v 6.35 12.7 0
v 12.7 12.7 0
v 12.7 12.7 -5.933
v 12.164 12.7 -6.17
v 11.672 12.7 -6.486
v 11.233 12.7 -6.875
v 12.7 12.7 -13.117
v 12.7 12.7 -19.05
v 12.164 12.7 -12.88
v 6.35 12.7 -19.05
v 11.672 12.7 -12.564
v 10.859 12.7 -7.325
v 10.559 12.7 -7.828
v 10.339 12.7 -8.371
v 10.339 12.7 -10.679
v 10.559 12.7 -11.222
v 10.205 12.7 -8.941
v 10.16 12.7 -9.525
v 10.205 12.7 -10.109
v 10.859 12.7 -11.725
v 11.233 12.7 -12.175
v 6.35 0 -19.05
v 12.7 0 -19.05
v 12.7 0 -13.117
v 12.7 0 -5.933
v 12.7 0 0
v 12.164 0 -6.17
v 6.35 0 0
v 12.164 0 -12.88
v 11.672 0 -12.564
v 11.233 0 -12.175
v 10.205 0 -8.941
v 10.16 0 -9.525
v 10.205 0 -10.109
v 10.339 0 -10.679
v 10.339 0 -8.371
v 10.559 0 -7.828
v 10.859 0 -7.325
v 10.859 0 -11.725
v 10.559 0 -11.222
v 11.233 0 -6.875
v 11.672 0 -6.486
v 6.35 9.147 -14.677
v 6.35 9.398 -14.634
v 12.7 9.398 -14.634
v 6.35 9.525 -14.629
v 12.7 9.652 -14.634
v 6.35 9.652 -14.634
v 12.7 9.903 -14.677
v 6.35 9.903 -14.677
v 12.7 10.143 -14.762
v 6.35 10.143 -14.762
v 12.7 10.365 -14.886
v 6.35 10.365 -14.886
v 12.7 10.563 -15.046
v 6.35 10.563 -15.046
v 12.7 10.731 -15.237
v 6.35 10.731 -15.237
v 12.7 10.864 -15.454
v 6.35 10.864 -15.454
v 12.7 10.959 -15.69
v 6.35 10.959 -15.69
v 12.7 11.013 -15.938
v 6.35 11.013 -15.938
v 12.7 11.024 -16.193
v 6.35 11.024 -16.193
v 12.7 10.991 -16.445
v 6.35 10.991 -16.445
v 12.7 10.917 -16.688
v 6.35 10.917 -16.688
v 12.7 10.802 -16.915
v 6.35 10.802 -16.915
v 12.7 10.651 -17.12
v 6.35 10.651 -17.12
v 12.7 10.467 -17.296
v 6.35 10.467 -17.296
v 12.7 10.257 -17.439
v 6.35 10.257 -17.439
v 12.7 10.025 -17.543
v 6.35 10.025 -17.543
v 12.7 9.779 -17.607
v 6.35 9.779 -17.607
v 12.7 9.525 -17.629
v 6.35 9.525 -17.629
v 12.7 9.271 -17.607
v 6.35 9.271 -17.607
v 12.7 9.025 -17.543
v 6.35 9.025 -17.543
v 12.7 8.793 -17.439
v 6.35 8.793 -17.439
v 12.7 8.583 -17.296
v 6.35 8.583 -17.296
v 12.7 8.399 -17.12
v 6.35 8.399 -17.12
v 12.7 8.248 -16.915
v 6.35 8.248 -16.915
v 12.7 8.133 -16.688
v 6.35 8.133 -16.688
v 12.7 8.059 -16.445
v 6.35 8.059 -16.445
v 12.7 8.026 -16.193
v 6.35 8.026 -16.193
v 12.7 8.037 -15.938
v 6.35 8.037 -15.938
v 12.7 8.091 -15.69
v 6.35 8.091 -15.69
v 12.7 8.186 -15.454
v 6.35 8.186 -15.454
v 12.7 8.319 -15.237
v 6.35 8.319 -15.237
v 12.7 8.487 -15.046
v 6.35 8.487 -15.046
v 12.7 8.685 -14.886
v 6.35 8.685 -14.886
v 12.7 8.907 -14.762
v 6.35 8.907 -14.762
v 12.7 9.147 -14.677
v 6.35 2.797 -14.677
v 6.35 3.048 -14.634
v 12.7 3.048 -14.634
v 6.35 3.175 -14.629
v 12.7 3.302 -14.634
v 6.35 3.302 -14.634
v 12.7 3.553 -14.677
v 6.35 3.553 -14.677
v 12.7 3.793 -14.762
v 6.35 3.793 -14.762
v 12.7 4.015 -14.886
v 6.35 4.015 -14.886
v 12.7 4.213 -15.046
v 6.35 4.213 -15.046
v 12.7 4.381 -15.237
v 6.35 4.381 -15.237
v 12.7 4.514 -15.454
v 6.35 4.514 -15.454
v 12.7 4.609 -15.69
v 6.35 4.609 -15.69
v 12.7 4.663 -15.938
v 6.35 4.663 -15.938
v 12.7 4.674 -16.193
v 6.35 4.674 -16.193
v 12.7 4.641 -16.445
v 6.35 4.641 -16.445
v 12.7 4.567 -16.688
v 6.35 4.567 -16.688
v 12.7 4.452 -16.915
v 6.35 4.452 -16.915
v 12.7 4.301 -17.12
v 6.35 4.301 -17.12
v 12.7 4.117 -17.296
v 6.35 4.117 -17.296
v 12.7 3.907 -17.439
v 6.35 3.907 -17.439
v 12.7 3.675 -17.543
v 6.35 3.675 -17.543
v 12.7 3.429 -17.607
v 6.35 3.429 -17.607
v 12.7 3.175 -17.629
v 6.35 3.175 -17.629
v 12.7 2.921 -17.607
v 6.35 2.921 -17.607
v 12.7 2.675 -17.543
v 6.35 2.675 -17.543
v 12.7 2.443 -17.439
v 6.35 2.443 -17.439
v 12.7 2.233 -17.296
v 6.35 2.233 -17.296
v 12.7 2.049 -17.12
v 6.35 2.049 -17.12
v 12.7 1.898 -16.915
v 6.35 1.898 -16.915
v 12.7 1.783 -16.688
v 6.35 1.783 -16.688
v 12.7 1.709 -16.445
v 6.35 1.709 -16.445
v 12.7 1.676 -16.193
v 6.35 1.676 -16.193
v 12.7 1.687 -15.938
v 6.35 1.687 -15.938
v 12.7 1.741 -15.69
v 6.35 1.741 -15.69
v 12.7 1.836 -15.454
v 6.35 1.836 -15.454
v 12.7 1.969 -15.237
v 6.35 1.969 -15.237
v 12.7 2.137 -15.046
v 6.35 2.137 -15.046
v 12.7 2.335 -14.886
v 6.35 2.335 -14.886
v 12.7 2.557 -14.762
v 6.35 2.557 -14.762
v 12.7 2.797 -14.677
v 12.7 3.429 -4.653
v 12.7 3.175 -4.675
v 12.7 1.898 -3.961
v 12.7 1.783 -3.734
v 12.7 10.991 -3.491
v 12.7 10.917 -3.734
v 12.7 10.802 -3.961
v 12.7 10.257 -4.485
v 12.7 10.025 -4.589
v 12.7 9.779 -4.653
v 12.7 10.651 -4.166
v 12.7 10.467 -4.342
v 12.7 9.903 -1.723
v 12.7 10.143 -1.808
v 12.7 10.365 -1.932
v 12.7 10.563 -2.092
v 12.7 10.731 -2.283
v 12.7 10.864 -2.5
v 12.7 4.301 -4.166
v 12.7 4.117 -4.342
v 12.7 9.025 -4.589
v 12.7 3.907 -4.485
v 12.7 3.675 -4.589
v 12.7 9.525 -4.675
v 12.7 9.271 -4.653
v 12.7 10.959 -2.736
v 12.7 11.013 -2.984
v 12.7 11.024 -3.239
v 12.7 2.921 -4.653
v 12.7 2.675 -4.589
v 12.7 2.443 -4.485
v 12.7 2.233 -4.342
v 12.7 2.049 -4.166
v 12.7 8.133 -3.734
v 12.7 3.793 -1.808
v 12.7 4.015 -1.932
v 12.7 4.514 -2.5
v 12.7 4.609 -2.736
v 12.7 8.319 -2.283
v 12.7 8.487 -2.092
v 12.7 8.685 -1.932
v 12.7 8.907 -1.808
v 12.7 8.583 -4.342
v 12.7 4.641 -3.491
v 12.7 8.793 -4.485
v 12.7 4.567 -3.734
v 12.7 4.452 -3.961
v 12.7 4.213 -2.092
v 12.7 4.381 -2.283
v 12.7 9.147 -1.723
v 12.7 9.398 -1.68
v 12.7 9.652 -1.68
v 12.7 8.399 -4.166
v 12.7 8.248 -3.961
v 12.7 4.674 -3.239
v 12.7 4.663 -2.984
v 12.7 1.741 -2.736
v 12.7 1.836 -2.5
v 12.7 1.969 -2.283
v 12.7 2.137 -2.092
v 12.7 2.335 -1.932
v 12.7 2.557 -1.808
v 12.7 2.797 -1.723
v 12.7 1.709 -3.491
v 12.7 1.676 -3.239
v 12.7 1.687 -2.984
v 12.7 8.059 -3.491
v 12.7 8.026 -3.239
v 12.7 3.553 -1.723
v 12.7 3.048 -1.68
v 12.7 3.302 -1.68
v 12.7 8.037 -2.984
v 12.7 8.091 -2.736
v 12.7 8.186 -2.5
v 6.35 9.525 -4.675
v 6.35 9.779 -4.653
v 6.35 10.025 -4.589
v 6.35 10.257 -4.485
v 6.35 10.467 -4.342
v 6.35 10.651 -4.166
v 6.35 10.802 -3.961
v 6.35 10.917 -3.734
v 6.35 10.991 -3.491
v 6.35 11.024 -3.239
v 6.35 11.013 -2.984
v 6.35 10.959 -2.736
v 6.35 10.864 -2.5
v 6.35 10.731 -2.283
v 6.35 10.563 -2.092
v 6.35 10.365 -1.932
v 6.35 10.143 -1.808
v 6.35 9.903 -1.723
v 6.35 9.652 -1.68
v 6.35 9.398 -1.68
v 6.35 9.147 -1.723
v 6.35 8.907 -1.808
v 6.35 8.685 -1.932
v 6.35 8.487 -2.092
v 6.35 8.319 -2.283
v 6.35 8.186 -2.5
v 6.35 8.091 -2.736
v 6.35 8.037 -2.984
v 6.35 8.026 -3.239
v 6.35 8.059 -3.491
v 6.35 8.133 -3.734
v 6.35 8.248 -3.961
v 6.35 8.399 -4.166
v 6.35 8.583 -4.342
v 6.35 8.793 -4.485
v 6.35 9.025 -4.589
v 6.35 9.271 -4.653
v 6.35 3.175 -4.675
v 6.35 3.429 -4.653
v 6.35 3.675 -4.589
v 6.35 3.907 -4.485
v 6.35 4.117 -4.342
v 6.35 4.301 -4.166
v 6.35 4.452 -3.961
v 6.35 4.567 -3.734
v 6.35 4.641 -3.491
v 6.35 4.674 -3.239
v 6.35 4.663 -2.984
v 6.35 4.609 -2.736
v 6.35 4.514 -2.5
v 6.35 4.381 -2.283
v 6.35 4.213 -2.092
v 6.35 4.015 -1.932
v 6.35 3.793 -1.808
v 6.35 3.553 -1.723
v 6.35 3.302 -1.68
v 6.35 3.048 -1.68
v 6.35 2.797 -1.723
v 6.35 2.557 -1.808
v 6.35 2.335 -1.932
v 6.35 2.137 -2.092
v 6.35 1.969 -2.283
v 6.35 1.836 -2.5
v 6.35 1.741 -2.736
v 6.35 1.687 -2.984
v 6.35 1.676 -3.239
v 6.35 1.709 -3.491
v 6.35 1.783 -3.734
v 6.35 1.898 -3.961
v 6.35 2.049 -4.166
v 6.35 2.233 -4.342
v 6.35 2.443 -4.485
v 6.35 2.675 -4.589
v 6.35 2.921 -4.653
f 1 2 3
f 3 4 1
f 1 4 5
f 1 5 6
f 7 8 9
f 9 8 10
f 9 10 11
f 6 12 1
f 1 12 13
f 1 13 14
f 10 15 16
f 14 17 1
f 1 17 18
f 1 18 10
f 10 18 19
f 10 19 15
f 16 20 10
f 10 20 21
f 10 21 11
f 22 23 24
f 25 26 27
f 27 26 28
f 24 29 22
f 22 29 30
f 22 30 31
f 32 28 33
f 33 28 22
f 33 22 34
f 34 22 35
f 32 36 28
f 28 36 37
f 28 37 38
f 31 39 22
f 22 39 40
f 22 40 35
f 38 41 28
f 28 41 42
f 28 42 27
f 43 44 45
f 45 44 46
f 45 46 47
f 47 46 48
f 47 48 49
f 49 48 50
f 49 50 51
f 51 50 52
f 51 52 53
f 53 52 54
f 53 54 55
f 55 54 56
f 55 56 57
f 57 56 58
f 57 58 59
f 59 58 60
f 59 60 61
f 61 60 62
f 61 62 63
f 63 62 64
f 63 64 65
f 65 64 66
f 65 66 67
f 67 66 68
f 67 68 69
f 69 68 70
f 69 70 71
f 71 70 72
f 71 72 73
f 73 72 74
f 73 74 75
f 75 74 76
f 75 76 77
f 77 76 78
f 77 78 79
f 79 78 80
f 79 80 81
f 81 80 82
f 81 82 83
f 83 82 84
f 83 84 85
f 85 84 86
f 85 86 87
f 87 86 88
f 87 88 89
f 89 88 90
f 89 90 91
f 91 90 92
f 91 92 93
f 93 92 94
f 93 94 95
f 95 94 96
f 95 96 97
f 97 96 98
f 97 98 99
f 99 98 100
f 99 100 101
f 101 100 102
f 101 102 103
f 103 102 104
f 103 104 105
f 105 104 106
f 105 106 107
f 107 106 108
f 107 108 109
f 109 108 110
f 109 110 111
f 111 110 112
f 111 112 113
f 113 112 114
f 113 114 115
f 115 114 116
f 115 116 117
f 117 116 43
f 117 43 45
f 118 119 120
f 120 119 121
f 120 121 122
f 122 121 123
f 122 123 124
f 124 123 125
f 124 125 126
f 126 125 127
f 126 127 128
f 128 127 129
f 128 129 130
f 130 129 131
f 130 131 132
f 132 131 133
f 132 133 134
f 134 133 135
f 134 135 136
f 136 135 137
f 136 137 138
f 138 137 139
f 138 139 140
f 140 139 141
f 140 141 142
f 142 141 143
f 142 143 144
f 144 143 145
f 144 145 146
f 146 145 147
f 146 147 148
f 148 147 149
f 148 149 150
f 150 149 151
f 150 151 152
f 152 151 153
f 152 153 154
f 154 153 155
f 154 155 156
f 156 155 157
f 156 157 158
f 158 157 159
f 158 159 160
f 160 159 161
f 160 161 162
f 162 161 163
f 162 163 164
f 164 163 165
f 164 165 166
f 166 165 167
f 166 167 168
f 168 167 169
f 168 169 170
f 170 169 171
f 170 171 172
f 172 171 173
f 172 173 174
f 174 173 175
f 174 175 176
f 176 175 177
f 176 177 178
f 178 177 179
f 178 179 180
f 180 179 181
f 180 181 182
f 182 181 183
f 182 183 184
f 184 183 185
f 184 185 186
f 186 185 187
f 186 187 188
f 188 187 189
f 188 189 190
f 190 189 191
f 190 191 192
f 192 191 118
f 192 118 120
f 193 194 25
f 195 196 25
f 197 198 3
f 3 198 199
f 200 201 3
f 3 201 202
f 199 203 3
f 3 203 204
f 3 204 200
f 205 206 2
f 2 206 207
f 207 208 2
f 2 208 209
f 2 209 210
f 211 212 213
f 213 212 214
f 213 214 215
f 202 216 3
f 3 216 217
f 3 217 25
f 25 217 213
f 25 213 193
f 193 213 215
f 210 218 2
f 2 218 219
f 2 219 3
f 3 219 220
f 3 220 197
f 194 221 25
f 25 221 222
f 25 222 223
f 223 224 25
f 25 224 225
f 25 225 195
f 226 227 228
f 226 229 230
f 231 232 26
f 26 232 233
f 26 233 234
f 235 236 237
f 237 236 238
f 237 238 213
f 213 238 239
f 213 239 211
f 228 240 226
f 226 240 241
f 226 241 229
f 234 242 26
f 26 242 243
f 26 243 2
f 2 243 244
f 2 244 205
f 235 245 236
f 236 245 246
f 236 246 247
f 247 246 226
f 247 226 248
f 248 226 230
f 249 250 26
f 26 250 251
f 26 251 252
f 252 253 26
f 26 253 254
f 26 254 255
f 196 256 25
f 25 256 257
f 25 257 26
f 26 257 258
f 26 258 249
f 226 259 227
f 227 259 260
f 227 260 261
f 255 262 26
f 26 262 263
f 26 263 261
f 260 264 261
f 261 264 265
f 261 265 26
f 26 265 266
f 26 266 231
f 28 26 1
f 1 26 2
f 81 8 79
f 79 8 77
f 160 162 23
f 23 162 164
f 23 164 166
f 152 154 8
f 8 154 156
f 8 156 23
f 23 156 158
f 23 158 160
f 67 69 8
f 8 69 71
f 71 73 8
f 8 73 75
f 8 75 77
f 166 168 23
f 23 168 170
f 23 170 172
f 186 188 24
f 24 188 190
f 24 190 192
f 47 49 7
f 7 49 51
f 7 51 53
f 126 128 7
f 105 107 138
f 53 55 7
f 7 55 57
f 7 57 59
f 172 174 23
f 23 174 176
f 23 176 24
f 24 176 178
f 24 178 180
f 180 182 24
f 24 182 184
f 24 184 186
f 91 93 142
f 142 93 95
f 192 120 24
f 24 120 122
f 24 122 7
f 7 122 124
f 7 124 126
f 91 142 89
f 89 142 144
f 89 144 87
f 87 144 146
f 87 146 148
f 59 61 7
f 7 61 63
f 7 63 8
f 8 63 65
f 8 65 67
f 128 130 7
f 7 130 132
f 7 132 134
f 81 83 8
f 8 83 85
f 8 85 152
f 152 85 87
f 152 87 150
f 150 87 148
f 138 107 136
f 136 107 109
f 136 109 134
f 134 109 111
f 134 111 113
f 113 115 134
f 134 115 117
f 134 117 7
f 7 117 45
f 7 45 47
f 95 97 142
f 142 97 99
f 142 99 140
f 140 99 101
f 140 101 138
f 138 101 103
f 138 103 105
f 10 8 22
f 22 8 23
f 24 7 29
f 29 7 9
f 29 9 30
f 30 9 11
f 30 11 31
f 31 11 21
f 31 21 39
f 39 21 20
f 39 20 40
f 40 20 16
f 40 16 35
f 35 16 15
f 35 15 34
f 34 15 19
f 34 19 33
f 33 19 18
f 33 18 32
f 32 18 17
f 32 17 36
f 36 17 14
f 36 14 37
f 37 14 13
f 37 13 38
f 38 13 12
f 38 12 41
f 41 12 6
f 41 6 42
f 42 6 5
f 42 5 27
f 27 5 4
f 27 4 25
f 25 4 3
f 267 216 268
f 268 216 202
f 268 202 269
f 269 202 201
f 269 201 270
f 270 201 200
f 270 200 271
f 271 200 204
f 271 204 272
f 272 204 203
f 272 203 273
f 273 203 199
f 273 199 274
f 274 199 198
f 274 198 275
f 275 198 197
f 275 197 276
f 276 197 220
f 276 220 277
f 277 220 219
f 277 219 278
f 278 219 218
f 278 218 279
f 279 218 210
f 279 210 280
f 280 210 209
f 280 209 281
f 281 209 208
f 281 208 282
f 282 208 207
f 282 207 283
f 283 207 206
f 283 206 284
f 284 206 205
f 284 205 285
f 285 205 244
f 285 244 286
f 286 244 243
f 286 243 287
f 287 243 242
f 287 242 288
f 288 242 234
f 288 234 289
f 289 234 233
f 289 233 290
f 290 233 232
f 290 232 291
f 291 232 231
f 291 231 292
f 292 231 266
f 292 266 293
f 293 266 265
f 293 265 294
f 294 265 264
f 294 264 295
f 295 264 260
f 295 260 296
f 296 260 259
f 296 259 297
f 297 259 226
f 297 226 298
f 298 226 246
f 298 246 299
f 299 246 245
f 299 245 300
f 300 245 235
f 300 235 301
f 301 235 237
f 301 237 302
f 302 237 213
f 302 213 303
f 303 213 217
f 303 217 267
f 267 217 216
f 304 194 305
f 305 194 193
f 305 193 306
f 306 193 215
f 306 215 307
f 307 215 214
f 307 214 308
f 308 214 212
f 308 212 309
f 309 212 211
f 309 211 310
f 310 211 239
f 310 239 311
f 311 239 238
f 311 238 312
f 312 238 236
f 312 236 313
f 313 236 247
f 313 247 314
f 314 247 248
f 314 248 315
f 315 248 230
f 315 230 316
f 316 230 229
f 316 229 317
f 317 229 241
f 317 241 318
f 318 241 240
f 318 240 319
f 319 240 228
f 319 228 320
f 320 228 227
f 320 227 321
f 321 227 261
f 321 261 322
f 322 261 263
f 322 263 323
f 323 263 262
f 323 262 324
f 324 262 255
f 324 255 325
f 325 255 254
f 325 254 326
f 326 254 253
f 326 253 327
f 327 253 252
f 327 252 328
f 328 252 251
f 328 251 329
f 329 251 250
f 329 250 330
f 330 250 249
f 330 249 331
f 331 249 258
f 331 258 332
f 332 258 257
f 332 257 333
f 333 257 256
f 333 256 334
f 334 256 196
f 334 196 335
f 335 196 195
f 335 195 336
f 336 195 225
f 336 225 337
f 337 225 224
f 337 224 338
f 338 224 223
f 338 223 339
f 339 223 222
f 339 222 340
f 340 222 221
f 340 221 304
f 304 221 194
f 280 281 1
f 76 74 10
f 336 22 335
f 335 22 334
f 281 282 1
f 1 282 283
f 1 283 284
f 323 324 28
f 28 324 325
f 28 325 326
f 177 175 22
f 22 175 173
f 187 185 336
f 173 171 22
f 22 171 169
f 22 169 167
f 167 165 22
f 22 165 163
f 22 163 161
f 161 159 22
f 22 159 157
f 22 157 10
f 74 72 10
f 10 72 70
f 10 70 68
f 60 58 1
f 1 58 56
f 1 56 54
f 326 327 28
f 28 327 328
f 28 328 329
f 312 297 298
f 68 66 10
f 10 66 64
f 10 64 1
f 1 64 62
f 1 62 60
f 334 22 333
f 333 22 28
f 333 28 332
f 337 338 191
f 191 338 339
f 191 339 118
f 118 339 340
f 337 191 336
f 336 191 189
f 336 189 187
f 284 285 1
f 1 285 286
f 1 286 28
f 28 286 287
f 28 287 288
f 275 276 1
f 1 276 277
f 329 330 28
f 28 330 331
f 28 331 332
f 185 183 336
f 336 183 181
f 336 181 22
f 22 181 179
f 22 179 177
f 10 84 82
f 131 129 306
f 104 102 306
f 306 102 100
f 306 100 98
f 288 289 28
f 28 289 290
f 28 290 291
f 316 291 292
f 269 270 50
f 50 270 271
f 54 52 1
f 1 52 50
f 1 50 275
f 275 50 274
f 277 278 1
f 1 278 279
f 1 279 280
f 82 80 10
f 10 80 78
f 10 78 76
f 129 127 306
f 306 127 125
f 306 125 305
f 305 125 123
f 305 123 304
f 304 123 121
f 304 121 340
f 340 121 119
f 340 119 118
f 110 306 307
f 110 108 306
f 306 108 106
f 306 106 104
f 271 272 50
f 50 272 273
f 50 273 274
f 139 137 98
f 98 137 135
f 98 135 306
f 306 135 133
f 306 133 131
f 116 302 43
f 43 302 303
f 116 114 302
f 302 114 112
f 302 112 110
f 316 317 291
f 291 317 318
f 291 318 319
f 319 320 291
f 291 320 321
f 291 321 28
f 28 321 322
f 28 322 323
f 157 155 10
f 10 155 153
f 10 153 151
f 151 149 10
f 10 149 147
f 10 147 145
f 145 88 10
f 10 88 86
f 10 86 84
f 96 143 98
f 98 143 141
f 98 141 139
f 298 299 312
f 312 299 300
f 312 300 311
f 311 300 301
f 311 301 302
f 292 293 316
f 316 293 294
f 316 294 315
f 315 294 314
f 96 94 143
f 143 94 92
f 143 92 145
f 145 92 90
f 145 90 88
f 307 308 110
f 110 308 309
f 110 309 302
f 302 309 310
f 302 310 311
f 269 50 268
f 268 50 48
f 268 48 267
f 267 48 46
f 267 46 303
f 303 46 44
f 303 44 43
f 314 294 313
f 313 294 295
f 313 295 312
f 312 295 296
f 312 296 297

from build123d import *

# Parameters (mm, degrees)
SKETCH1_W           = 12.7
SKETCH1_H           = 19.05
BOSS_EXTRUDE1_DEPTH = 12.7
CUT_EXTRUDE2_DEPTH  = 12.7
SKETCH5_R           = 1.5
CUT_EXTRUDE3_DEPTH  = 12.7
CUT_EXTRUDE4_DEPTH  = 12.7
SKETCH7_W           = 12.213119959
SKETCH7_H           = 9.608468088
CUT_EXTRUDE5_DEPTH  = 12.7


with BuildPart() as part:
    # Sketch1 → Boss-Extrude1 (new body)
    with BuildSketch(Plane(origin=(0, 0, 0), x_dir=(1, 0, 0), z_dir=(0, 1, 0))):
        with Locations((6.35, 9.525)):
            Rectangle(SKETCH1_W, SKETCH1_H)
    extrude(amount=BOSS_EXTRUDE1_DEPTH)

    # Sketch4 → Cut-Extrude2 (cut)
    with BuildSketch(Plane(origin=(0, 12.7, 0), x_dir=(1, 0, 0), z_dir=(0, 1, 0))):
        Polygon((0, 19.05), (0, 9.525), (6.35, 19.05), align=None)
        Polygon((6.35, 0), (0, 9.525), (0, 0), align=None)
        with BuildLine():
            Line((12.7, 5.932897552), (12.7, 13.117102448))
            ThreePointArc((12.7, 13.117102448), (10.16, 9.525), (12.7, 5.932897552))
        make_face()
        with BuildLine():
            ThreePointArc((17.78, 9.525), (16.169704526, 12.635851973), (12.7, 13.117102448))
            Line((12.7, 13.117102448), (12.7, 5.932897552))
            ThreePointArc((12.7, 5.932897552), (16.169704526, 6.414148027), (17.78, 9.525))
        make_face()
    extrude(amount=-CUT_EXTRUDE2_DEPTH, mode=Mode.SUBTRACT)

    # Sketch5 → Cut-Extrude3 (cut)
    with BuildSketch(Plane(origin=(12.7, 0, 0), x_dir=(0, 0, -1), z_dir=(1, 0, 0))):
        with Locations((3.175, 9.525)):
            Circle(SKETCH5_R)
        with Locations((16.129, 9.525)):
            Circle(SKETCH5_R)
        with Locations((16.129, 3.175)):
            Circle(SKETCH5_R)
        with Locations((3.175, 3.175)):
            Circle(SKETCH5_R)
    extrude(amount=-CUT_EXTRUDE3_DEPTH, mode=Mode.SUBTRACT)

    # Sketch6 → Cut-Extrude4 (cut)
    with BuildSketch(Plane.XZ):
        Polygon((6.35, 0), (6.35, -5.570300529), (2.636466314, -5.570300529), align=None)
    cut_extrude4 = extrude(amount=-CUT_EXTRUDE4_DEPTH, mode=Mode.SUBTRACT)

    # Mirror1: Cut-Extrude4 across plane
    add(cut_extrude4.mirror(Plane(origin=(0, 0, -9.525), x_dir=(1, 0, 0), z_dir=(0, 0, -1))), mode=Mode.SUBTRACT)

    # Sketch7 → Cut-Extrude5 (cut)
    with BuildSketch(Plane.XZ):
        with Locations((0.243440021, -8.675465427)):
            Rectangle(SKETCH7_W, SKETCH7_H)
    extrude(amount=-CUT_EXTRUDE5_DEPTH, mode=Mode.SUBTRACT)


solid = part.part
